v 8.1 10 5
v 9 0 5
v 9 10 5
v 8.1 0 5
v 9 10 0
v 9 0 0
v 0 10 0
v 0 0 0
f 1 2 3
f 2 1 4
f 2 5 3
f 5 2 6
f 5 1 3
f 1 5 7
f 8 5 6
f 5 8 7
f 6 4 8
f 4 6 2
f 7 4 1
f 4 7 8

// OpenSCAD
width=10;
length=9;
magnetDiameter=5;
magnetThickness=0.9;

angle=atan(magnetDiameter/(length-magnetThickness));

$fn=50;

difference()
	{
	cube([length,width,magnetDiameter]);
  rotate([0,-angle,0])
    cube([length*1.25,width,magnetDiameter]);
//  translate([length-magnetThickness,magnetDiameter/2,magnetDiameter/2])
//    rotate([0,90,0])
//      cylinder(h=magnetThickness, d=magnetDiameter);
//  translate([length-magnetThickness,magnetDiameter*1.5,magnetDiameter/2])
//    rotate([0,90,0])
//      cylinder(h=magnetThickness, d=magnetDiameter);
	}
